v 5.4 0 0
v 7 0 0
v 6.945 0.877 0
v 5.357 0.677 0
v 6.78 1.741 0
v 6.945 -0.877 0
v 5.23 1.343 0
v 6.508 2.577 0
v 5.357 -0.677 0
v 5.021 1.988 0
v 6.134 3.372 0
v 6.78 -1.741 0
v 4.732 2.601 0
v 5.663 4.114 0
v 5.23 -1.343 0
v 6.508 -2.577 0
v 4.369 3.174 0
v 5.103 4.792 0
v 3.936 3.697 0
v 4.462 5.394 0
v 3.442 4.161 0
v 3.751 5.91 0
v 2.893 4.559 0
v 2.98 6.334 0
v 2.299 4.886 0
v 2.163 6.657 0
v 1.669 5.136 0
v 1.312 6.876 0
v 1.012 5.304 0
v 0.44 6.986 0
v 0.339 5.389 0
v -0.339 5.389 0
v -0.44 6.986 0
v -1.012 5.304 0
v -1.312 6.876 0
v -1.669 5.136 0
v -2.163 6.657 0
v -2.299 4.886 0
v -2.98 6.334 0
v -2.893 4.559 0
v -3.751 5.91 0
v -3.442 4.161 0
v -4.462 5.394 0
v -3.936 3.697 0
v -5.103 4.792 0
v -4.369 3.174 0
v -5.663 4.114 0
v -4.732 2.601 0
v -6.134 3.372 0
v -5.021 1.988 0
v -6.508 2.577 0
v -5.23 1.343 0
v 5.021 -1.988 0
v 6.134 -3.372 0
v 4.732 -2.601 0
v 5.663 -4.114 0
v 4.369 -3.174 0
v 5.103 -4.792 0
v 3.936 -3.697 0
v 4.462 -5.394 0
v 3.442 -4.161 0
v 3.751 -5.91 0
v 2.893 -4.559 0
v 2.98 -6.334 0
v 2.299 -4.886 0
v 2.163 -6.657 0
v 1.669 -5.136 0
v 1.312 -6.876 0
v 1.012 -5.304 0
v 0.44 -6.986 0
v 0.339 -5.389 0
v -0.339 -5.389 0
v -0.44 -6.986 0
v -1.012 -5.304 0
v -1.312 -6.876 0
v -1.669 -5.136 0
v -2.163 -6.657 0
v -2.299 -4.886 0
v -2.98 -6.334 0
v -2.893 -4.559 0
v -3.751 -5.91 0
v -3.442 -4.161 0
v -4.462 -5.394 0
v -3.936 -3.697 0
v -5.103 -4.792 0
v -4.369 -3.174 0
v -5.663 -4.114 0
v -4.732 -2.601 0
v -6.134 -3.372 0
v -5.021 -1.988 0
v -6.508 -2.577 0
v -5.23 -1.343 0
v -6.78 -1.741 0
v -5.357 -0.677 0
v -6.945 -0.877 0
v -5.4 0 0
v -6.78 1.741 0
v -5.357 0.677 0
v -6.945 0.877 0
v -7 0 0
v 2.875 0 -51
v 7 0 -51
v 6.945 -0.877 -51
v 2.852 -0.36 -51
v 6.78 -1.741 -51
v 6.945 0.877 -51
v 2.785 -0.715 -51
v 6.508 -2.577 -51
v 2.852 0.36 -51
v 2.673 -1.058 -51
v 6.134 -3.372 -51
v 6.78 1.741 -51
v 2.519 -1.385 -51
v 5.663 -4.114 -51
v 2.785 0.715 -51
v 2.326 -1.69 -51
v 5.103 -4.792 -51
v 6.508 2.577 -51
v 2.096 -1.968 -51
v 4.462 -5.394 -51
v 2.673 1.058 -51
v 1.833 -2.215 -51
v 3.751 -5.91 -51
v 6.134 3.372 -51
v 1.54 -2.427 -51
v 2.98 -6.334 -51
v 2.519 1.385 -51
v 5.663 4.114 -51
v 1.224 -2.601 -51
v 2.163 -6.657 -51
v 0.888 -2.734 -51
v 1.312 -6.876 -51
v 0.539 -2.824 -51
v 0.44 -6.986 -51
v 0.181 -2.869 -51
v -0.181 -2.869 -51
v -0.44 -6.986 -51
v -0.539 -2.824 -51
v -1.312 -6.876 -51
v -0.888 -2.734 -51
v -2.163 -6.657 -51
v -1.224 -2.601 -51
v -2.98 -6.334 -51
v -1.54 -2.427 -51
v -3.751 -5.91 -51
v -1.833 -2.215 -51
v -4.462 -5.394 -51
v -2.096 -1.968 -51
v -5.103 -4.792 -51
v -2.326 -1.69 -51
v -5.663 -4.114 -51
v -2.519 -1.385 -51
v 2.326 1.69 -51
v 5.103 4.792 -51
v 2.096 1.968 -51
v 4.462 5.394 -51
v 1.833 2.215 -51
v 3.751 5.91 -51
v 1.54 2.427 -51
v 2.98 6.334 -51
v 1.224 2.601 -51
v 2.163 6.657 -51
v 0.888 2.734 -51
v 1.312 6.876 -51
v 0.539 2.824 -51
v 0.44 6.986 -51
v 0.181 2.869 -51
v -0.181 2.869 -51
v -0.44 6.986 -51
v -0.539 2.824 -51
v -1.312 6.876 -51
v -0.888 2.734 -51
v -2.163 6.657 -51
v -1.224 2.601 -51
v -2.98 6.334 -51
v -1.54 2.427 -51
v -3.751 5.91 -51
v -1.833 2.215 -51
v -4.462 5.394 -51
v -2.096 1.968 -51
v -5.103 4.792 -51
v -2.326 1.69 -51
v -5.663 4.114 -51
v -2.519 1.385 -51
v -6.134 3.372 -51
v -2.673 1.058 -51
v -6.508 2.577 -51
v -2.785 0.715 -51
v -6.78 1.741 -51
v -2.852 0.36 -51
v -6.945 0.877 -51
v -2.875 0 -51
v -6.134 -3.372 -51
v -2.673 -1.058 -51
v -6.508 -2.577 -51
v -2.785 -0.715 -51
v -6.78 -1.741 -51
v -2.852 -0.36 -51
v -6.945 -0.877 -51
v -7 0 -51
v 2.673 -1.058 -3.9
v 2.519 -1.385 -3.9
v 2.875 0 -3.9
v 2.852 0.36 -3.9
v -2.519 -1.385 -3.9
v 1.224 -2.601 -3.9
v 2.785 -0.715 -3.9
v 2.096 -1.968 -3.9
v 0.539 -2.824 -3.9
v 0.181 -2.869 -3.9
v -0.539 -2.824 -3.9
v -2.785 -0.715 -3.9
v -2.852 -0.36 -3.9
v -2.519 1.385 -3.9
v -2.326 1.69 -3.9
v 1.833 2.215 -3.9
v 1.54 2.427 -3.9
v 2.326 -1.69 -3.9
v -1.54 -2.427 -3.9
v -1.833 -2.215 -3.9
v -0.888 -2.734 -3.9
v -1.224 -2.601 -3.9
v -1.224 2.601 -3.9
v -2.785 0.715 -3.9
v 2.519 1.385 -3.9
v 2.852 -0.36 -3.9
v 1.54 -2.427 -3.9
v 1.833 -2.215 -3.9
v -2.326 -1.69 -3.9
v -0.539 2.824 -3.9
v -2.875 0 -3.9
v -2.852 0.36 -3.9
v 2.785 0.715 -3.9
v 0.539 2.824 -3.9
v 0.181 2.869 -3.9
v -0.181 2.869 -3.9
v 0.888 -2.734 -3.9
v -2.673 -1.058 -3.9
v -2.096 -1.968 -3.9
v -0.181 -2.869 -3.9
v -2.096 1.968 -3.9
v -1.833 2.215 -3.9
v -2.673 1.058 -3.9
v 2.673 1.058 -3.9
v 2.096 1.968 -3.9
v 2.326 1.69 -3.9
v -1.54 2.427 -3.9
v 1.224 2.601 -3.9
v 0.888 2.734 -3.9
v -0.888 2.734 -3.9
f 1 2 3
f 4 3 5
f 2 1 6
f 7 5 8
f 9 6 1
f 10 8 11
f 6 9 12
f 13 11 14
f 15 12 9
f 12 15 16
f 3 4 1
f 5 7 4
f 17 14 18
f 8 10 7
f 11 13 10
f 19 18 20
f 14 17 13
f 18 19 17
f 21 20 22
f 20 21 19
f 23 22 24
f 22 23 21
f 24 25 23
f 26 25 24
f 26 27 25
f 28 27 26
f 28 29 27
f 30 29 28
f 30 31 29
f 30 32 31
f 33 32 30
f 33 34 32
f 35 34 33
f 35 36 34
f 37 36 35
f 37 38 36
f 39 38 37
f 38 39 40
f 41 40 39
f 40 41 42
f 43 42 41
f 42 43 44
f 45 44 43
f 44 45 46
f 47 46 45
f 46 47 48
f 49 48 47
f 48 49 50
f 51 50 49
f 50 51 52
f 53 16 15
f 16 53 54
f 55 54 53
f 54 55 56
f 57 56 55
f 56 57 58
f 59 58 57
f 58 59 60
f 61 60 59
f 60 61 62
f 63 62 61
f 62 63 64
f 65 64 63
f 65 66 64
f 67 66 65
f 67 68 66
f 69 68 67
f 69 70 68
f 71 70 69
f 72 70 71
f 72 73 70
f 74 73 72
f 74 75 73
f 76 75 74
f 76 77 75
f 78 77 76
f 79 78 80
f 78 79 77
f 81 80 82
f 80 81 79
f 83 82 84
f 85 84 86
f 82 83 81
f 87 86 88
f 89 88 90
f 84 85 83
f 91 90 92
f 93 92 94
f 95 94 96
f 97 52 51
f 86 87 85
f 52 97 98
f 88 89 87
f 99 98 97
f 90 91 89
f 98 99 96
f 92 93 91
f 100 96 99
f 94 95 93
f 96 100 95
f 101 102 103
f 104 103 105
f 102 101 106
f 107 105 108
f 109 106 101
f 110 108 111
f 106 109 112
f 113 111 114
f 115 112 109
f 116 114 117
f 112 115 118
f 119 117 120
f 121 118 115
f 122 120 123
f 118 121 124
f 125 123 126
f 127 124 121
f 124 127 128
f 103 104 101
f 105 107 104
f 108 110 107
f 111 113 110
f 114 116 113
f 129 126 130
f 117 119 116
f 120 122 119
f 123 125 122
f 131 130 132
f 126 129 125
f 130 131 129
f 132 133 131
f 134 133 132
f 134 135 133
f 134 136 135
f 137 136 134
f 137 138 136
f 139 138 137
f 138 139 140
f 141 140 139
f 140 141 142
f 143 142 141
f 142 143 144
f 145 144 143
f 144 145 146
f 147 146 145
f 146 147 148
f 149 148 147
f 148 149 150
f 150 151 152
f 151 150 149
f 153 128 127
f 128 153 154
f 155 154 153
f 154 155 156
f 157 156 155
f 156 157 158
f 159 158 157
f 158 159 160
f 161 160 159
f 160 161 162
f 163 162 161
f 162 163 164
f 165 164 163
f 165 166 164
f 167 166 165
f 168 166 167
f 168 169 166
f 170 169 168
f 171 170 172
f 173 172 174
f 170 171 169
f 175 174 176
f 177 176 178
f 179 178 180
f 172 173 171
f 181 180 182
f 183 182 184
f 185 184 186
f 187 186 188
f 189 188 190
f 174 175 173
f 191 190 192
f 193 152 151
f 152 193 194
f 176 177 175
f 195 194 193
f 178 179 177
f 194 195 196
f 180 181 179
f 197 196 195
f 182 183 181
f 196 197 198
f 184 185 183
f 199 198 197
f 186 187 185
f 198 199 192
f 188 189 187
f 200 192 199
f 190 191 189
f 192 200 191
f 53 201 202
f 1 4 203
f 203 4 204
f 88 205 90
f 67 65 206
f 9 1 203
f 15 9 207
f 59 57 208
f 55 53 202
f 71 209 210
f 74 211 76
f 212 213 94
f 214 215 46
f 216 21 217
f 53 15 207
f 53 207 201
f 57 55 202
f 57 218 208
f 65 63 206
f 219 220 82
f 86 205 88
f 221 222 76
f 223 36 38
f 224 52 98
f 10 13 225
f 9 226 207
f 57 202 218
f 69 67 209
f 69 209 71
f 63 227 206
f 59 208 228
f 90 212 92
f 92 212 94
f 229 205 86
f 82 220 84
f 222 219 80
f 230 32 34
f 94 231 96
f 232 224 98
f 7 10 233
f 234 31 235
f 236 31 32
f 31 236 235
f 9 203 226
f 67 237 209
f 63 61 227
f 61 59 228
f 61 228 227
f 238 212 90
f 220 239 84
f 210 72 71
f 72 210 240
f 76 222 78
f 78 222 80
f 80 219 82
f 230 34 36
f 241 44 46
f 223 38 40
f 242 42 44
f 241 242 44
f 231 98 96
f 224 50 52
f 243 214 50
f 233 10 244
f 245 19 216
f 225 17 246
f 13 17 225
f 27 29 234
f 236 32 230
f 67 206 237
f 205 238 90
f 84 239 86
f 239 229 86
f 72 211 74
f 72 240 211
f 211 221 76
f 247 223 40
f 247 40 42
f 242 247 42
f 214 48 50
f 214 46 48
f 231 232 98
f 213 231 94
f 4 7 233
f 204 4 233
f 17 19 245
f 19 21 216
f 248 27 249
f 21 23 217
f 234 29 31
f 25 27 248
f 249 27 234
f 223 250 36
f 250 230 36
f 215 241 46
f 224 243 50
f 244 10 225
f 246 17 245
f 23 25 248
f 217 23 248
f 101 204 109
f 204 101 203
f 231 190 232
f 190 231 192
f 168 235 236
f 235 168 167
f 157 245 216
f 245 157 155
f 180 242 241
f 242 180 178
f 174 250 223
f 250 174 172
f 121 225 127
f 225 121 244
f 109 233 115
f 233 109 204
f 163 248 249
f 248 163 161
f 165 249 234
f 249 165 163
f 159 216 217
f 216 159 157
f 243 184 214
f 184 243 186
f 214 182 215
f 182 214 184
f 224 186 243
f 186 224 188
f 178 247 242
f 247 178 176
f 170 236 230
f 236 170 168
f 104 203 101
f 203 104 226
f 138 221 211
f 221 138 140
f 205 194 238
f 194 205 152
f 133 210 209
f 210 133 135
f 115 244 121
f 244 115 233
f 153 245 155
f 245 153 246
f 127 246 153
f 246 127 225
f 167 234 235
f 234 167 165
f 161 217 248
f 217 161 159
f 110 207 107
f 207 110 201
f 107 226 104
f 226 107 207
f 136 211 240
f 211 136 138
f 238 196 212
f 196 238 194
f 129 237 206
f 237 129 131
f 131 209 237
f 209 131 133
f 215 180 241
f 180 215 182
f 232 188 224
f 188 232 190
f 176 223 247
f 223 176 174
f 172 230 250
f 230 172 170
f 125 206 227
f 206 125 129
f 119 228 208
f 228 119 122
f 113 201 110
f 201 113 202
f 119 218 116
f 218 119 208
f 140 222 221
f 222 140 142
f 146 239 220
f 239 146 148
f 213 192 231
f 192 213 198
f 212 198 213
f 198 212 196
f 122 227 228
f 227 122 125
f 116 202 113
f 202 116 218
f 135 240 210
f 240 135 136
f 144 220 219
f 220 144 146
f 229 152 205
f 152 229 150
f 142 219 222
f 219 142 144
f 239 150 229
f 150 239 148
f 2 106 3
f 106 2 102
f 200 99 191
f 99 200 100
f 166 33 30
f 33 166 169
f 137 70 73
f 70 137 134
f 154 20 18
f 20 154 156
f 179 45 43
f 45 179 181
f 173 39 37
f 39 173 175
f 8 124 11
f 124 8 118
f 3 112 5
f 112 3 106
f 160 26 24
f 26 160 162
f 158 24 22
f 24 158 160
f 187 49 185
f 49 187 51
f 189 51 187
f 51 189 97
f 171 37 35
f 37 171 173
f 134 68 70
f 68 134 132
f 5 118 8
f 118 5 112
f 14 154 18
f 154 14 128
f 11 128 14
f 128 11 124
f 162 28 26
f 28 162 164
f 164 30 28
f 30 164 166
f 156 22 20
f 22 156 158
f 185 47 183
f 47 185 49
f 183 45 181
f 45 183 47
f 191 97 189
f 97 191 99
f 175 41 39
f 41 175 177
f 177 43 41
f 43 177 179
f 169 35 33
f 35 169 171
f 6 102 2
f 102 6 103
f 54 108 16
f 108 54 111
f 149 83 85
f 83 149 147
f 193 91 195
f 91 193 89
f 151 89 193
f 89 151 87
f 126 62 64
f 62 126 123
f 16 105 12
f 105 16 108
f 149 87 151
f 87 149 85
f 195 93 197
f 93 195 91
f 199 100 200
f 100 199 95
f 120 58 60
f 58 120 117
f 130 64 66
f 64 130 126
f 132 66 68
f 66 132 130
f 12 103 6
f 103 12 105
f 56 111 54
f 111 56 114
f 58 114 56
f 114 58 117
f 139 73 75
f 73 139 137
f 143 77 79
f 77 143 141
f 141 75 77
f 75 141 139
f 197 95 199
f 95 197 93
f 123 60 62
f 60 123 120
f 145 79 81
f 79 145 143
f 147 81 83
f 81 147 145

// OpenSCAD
$fn = 50;


difference() {
	union() {
		translate(v = [0, 0, -51.0000000000]) {
			cylinder(h = 51, r = 7.0000000000);
		}
		cylinder(h = 0, r = 16.0000000000);
	}
	union() {
		translate(v = [0, 0, 0]) {
			rotate(a = [0, 0, 0]) {
				difference() {
					union() {
						#translate(v = [0, 0, -51.0000000000]) {
							cylinder(h = 51, r = 2.6000000000);
						}
						#translate(v = [0, 0, -3.9000000000]) {
							cylinder(h = 3.9000000000, r = 7.0000000000, r1 = 2.8750000000, r2 = 5.4000000000);
						}
						#translate(v = [0, 0, -51.0000000000]) {
							cylinder(h = 51, r = 2.8750000000);
						}
						#translate(v = [0, 0, -51.0000000000]) {
							cylinder(h = 51, r = 2.6000000000);
						}
					}
					union();
				}
			}
		}
	}
}
